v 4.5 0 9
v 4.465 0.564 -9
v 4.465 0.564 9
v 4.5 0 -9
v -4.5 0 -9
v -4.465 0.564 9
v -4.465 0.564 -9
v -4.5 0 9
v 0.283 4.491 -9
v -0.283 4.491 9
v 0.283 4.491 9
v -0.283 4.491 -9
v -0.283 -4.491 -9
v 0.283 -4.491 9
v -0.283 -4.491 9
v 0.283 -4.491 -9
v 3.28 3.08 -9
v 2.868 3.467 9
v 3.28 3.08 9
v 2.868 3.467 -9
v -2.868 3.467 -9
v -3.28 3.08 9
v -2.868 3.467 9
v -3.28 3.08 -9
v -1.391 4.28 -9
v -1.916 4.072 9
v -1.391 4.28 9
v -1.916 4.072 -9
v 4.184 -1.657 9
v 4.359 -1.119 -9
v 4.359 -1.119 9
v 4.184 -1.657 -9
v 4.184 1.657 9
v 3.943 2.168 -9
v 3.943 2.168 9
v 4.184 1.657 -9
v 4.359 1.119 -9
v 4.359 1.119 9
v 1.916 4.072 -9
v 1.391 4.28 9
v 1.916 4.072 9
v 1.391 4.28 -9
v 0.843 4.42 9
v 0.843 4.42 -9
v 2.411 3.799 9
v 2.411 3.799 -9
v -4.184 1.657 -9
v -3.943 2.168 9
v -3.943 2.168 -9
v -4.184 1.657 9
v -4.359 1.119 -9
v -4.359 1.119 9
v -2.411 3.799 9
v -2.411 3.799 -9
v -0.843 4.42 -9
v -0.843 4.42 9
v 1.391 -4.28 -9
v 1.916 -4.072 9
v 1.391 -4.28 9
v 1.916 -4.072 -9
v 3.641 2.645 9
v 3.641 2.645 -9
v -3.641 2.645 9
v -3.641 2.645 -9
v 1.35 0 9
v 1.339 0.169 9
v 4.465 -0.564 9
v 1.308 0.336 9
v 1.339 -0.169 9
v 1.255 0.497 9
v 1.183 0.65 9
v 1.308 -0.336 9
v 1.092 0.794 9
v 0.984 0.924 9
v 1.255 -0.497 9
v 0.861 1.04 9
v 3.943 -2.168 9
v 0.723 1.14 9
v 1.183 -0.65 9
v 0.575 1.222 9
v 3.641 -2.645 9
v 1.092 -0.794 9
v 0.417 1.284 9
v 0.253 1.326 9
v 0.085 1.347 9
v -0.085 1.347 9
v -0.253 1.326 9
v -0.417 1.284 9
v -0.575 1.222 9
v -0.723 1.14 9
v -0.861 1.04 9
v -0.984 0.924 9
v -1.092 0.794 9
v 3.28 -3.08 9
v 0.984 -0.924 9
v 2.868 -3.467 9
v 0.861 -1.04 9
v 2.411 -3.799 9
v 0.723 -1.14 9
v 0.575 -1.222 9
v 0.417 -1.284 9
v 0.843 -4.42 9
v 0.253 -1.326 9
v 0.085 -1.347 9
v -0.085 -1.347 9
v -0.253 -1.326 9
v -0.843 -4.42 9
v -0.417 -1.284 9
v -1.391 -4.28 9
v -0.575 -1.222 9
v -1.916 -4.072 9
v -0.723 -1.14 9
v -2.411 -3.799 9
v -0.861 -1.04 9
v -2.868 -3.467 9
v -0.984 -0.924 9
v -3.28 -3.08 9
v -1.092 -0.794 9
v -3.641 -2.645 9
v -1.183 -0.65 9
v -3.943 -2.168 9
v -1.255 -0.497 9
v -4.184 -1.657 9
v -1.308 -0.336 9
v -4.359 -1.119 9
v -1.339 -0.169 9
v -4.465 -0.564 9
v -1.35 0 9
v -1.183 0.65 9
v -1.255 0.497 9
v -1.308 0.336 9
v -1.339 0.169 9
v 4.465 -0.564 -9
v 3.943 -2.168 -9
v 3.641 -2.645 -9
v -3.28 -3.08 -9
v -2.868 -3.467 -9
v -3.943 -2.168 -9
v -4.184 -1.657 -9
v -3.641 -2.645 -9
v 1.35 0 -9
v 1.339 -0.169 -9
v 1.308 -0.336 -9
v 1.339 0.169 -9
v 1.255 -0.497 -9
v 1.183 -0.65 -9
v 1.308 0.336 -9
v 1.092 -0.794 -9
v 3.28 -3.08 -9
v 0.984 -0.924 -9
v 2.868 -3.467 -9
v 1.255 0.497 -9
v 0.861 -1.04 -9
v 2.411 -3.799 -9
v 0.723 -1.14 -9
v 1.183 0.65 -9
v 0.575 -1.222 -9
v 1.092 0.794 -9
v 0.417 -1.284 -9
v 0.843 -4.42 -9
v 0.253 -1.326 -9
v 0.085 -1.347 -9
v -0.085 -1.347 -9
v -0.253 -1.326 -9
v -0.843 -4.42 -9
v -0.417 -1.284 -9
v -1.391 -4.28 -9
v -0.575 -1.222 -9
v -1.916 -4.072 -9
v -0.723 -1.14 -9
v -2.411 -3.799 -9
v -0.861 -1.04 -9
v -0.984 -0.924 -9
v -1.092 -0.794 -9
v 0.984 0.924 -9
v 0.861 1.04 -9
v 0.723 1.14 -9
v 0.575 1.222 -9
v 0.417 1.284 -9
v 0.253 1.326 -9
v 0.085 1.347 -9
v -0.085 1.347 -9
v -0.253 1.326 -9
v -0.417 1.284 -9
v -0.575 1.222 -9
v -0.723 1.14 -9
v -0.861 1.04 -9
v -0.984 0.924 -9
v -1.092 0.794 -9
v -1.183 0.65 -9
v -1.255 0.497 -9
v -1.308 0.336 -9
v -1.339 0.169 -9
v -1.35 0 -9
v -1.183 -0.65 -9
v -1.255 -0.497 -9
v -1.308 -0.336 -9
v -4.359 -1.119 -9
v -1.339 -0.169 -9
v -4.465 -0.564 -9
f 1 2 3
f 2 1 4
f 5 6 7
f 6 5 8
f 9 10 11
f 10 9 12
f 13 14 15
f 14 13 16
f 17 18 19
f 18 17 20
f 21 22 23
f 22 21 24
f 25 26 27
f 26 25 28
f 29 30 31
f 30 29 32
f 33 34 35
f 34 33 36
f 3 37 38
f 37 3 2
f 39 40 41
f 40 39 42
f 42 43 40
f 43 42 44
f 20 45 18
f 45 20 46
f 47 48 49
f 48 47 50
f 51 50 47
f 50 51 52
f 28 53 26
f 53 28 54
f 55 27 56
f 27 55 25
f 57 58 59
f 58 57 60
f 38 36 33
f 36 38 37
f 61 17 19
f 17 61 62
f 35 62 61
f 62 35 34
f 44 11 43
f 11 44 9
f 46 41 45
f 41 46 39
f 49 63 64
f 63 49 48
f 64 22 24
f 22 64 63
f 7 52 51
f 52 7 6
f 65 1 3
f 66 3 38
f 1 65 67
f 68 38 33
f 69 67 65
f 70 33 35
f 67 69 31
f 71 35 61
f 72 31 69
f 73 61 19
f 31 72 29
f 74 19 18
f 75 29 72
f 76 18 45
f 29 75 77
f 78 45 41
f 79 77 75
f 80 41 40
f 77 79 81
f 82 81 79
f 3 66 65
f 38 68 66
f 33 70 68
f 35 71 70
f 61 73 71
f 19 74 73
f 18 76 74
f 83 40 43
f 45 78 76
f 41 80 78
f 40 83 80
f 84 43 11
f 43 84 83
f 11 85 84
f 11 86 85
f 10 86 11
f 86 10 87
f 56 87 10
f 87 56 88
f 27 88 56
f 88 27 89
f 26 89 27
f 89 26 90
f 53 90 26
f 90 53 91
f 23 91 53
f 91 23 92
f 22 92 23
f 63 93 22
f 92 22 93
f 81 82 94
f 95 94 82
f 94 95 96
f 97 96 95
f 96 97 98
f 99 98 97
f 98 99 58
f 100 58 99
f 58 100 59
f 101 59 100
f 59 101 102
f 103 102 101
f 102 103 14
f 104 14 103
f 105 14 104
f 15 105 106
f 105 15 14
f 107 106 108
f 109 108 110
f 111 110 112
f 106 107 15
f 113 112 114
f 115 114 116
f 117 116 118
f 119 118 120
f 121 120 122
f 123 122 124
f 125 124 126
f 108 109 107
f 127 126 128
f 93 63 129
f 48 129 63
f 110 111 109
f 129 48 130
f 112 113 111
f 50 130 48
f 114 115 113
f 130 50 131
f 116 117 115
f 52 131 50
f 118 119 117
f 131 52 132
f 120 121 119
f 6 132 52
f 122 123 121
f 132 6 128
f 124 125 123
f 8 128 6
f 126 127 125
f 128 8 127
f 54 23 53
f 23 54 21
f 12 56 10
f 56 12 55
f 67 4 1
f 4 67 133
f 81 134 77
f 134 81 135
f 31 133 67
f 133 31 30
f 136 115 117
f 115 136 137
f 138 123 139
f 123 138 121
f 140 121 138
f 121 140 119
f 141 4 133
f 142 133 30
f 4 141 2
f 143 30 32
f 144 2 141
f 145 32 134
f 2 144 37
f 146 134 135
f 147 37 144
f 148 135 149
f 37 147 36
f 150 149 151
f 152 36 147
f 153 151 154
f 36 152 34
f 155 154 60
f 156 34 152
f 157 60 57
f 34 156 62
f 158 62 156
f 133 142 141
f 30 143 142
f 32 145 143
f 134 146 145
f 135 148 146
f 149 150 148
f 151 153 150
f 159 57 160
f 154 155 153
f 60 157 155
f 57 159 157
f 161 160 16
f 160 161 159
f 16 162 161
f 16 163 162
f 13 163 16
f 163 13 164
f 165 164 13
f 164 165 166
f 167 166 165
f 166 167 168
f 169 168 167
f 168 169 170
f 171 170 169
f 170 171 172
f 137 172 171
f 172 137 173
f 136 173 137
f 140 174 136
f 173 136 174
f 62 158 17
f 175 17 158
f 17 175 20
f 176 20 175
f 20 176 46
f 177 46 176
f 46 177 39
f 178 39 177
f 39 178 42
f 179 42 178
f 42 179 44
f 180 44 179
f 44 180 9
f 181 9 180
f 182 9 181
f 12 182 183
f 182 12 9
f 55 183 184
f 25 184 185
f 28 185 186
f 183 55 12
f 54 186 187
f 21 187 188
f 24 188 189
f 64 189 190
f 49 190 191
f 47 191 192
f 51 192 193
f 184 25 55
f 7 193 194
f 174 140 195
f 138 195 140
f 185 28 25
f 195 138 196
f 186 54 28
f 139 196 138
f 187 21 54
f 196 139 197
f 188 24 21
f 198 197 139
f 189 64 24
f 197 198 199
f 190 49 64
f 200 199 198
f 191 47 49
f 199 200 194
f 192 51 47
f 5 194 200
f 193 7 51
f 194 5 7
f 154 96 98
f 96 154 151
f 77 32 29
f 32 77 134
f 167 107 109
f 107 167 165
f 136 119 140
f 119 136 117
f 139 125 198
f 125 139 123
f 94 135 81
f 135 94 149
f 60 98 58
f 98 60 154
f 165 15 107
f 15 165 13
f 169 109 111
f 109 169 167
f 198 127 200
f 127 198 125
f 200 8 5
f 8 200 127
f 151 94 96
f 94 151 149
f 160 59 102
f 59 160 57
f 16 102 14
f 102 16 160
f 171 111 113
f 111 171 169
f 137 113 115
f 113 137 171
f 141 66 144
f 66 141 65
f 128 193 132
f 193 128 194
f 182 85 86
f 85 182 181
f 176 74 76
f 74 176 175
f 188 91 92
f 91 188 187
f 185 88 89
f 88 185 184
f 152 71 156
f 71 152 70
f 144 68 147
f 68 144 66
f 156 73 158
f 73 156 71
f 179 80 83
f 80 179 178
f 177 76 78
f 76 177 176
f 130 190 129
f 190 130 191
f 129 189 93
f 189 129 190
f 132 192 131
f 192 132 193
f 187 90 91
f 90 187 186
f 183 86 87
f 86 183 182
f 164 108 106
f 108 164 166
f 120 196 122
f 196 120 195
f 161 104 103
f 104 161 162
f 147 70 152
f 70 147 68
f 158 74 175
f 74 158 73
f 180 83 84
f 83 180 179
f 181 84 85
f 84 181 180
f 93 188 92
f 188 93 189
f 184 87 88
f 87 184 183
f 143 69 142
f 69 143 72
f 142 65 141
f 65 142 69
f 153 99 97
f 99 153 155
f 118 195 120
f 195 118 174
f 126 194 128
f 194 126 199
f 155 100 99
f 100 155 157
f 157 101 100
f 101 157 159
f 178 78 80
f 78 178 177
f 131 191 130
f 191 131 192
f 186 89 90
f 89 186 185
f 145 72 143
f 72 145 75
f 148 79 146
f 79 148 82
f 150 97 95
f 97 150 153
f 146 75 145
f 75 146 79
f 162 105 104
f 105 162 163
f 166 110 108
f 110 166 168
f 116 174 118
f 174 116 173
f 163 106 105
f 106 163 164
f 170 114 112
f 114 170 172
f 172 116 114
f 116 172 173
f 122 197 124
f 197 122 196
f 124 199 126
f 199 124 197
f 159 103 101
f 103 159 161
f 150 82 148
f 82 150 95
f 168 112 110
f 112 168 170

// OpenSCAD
$fn = 50;


difference() {
	union() {
		translate(v = [0, 0, -9.0000000000]) {
			cylinder(h = 18, r = 4.5000000000);
		}
	}
	union() {
		translate(v = [0, 0, -100.0000000000]) {
			cylinder(h = 200, r = 1.3500000000);
		}
	}
}
